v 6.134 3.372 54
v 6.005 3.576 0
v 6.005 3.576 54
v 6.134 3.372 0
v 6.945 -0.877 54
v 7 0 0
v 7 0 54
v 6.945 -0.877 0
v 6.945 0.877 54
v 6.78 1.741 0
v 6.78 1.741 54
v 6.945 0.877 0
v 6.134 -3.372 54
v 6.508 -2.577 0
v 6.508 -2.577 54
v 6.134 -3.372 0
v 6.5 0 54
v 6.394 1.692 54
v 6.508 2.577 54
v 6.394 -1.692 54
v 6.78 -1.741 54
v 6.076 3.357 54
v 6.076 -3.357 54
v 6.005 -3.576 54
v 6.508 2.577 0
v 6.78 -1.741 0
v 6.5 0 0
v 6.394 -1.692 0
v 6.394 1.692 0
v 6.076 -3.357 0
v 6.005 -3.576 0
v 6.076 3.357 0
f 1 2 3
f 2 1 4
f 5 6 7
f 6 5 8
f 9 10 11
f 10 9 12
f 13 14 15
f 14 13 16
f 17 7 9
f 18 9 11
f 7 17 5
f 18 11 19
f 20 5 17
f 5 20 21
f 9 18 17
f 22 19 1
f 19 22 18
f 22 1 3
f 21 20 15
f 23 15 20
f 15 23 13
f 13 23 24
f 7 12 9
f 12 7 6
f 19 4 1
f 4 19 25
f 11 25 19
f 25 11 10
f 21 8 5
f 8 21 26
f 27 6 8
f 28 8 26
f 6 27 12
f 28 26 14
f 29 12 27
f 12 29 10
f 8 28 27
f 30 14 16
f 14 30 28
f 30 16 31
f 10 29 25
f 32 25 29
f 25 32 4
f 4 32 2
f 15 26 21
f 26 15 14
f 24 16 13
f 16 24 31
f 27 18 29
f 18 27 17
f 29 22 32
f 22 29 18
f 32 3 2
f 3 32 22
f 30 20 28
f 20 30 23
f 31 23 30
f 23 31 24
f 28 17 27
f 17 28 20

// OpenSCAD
$fn = 50;


difference() {
	union() {
		cylinder(h = 54, r = 7.0000000000);
		translate(v = [-10.0000000000, 0, 0]) {
			cylinder(h = 54, r = 7.0000000000);
		}
	}
	union() {
		cylinder(h = 54, r = 3.2500000000);
		cylinder(h = 54, r = 1.8000000000);
		cylinder(h = 54, r = 1.8000000000);
		cylinder(h = 54, r = 1.8000000000);
		translate(v = [-14.5000000000, 0, 0]) {
			hull() {
				translate(v = [-3.7500000000, 0.0000000000, 0]) {
					cylinder(h = 54, r = 7.5000000000);
				}
				translate(v = [3.7500000000, 0.0000000000, 0]) {
					cylinder(h = 54, r = 7.5000000000);
				}
				translate(v = [-3.7500000000, -0.0000000000, 0]) {
					cylinder(h = 54, r = 7.5000000000);
				}
				translate(v = [3.7500000000, -0.0000000000, 0]) {
					cylinder(h = 54, r = 7.5000000000);
				}
			}
		}
		translate(v = [-7.0000000000, 0, 0.0000000000]) {
			cylinder(h = 54, r = 13.5000000000);
		}
	}
}
